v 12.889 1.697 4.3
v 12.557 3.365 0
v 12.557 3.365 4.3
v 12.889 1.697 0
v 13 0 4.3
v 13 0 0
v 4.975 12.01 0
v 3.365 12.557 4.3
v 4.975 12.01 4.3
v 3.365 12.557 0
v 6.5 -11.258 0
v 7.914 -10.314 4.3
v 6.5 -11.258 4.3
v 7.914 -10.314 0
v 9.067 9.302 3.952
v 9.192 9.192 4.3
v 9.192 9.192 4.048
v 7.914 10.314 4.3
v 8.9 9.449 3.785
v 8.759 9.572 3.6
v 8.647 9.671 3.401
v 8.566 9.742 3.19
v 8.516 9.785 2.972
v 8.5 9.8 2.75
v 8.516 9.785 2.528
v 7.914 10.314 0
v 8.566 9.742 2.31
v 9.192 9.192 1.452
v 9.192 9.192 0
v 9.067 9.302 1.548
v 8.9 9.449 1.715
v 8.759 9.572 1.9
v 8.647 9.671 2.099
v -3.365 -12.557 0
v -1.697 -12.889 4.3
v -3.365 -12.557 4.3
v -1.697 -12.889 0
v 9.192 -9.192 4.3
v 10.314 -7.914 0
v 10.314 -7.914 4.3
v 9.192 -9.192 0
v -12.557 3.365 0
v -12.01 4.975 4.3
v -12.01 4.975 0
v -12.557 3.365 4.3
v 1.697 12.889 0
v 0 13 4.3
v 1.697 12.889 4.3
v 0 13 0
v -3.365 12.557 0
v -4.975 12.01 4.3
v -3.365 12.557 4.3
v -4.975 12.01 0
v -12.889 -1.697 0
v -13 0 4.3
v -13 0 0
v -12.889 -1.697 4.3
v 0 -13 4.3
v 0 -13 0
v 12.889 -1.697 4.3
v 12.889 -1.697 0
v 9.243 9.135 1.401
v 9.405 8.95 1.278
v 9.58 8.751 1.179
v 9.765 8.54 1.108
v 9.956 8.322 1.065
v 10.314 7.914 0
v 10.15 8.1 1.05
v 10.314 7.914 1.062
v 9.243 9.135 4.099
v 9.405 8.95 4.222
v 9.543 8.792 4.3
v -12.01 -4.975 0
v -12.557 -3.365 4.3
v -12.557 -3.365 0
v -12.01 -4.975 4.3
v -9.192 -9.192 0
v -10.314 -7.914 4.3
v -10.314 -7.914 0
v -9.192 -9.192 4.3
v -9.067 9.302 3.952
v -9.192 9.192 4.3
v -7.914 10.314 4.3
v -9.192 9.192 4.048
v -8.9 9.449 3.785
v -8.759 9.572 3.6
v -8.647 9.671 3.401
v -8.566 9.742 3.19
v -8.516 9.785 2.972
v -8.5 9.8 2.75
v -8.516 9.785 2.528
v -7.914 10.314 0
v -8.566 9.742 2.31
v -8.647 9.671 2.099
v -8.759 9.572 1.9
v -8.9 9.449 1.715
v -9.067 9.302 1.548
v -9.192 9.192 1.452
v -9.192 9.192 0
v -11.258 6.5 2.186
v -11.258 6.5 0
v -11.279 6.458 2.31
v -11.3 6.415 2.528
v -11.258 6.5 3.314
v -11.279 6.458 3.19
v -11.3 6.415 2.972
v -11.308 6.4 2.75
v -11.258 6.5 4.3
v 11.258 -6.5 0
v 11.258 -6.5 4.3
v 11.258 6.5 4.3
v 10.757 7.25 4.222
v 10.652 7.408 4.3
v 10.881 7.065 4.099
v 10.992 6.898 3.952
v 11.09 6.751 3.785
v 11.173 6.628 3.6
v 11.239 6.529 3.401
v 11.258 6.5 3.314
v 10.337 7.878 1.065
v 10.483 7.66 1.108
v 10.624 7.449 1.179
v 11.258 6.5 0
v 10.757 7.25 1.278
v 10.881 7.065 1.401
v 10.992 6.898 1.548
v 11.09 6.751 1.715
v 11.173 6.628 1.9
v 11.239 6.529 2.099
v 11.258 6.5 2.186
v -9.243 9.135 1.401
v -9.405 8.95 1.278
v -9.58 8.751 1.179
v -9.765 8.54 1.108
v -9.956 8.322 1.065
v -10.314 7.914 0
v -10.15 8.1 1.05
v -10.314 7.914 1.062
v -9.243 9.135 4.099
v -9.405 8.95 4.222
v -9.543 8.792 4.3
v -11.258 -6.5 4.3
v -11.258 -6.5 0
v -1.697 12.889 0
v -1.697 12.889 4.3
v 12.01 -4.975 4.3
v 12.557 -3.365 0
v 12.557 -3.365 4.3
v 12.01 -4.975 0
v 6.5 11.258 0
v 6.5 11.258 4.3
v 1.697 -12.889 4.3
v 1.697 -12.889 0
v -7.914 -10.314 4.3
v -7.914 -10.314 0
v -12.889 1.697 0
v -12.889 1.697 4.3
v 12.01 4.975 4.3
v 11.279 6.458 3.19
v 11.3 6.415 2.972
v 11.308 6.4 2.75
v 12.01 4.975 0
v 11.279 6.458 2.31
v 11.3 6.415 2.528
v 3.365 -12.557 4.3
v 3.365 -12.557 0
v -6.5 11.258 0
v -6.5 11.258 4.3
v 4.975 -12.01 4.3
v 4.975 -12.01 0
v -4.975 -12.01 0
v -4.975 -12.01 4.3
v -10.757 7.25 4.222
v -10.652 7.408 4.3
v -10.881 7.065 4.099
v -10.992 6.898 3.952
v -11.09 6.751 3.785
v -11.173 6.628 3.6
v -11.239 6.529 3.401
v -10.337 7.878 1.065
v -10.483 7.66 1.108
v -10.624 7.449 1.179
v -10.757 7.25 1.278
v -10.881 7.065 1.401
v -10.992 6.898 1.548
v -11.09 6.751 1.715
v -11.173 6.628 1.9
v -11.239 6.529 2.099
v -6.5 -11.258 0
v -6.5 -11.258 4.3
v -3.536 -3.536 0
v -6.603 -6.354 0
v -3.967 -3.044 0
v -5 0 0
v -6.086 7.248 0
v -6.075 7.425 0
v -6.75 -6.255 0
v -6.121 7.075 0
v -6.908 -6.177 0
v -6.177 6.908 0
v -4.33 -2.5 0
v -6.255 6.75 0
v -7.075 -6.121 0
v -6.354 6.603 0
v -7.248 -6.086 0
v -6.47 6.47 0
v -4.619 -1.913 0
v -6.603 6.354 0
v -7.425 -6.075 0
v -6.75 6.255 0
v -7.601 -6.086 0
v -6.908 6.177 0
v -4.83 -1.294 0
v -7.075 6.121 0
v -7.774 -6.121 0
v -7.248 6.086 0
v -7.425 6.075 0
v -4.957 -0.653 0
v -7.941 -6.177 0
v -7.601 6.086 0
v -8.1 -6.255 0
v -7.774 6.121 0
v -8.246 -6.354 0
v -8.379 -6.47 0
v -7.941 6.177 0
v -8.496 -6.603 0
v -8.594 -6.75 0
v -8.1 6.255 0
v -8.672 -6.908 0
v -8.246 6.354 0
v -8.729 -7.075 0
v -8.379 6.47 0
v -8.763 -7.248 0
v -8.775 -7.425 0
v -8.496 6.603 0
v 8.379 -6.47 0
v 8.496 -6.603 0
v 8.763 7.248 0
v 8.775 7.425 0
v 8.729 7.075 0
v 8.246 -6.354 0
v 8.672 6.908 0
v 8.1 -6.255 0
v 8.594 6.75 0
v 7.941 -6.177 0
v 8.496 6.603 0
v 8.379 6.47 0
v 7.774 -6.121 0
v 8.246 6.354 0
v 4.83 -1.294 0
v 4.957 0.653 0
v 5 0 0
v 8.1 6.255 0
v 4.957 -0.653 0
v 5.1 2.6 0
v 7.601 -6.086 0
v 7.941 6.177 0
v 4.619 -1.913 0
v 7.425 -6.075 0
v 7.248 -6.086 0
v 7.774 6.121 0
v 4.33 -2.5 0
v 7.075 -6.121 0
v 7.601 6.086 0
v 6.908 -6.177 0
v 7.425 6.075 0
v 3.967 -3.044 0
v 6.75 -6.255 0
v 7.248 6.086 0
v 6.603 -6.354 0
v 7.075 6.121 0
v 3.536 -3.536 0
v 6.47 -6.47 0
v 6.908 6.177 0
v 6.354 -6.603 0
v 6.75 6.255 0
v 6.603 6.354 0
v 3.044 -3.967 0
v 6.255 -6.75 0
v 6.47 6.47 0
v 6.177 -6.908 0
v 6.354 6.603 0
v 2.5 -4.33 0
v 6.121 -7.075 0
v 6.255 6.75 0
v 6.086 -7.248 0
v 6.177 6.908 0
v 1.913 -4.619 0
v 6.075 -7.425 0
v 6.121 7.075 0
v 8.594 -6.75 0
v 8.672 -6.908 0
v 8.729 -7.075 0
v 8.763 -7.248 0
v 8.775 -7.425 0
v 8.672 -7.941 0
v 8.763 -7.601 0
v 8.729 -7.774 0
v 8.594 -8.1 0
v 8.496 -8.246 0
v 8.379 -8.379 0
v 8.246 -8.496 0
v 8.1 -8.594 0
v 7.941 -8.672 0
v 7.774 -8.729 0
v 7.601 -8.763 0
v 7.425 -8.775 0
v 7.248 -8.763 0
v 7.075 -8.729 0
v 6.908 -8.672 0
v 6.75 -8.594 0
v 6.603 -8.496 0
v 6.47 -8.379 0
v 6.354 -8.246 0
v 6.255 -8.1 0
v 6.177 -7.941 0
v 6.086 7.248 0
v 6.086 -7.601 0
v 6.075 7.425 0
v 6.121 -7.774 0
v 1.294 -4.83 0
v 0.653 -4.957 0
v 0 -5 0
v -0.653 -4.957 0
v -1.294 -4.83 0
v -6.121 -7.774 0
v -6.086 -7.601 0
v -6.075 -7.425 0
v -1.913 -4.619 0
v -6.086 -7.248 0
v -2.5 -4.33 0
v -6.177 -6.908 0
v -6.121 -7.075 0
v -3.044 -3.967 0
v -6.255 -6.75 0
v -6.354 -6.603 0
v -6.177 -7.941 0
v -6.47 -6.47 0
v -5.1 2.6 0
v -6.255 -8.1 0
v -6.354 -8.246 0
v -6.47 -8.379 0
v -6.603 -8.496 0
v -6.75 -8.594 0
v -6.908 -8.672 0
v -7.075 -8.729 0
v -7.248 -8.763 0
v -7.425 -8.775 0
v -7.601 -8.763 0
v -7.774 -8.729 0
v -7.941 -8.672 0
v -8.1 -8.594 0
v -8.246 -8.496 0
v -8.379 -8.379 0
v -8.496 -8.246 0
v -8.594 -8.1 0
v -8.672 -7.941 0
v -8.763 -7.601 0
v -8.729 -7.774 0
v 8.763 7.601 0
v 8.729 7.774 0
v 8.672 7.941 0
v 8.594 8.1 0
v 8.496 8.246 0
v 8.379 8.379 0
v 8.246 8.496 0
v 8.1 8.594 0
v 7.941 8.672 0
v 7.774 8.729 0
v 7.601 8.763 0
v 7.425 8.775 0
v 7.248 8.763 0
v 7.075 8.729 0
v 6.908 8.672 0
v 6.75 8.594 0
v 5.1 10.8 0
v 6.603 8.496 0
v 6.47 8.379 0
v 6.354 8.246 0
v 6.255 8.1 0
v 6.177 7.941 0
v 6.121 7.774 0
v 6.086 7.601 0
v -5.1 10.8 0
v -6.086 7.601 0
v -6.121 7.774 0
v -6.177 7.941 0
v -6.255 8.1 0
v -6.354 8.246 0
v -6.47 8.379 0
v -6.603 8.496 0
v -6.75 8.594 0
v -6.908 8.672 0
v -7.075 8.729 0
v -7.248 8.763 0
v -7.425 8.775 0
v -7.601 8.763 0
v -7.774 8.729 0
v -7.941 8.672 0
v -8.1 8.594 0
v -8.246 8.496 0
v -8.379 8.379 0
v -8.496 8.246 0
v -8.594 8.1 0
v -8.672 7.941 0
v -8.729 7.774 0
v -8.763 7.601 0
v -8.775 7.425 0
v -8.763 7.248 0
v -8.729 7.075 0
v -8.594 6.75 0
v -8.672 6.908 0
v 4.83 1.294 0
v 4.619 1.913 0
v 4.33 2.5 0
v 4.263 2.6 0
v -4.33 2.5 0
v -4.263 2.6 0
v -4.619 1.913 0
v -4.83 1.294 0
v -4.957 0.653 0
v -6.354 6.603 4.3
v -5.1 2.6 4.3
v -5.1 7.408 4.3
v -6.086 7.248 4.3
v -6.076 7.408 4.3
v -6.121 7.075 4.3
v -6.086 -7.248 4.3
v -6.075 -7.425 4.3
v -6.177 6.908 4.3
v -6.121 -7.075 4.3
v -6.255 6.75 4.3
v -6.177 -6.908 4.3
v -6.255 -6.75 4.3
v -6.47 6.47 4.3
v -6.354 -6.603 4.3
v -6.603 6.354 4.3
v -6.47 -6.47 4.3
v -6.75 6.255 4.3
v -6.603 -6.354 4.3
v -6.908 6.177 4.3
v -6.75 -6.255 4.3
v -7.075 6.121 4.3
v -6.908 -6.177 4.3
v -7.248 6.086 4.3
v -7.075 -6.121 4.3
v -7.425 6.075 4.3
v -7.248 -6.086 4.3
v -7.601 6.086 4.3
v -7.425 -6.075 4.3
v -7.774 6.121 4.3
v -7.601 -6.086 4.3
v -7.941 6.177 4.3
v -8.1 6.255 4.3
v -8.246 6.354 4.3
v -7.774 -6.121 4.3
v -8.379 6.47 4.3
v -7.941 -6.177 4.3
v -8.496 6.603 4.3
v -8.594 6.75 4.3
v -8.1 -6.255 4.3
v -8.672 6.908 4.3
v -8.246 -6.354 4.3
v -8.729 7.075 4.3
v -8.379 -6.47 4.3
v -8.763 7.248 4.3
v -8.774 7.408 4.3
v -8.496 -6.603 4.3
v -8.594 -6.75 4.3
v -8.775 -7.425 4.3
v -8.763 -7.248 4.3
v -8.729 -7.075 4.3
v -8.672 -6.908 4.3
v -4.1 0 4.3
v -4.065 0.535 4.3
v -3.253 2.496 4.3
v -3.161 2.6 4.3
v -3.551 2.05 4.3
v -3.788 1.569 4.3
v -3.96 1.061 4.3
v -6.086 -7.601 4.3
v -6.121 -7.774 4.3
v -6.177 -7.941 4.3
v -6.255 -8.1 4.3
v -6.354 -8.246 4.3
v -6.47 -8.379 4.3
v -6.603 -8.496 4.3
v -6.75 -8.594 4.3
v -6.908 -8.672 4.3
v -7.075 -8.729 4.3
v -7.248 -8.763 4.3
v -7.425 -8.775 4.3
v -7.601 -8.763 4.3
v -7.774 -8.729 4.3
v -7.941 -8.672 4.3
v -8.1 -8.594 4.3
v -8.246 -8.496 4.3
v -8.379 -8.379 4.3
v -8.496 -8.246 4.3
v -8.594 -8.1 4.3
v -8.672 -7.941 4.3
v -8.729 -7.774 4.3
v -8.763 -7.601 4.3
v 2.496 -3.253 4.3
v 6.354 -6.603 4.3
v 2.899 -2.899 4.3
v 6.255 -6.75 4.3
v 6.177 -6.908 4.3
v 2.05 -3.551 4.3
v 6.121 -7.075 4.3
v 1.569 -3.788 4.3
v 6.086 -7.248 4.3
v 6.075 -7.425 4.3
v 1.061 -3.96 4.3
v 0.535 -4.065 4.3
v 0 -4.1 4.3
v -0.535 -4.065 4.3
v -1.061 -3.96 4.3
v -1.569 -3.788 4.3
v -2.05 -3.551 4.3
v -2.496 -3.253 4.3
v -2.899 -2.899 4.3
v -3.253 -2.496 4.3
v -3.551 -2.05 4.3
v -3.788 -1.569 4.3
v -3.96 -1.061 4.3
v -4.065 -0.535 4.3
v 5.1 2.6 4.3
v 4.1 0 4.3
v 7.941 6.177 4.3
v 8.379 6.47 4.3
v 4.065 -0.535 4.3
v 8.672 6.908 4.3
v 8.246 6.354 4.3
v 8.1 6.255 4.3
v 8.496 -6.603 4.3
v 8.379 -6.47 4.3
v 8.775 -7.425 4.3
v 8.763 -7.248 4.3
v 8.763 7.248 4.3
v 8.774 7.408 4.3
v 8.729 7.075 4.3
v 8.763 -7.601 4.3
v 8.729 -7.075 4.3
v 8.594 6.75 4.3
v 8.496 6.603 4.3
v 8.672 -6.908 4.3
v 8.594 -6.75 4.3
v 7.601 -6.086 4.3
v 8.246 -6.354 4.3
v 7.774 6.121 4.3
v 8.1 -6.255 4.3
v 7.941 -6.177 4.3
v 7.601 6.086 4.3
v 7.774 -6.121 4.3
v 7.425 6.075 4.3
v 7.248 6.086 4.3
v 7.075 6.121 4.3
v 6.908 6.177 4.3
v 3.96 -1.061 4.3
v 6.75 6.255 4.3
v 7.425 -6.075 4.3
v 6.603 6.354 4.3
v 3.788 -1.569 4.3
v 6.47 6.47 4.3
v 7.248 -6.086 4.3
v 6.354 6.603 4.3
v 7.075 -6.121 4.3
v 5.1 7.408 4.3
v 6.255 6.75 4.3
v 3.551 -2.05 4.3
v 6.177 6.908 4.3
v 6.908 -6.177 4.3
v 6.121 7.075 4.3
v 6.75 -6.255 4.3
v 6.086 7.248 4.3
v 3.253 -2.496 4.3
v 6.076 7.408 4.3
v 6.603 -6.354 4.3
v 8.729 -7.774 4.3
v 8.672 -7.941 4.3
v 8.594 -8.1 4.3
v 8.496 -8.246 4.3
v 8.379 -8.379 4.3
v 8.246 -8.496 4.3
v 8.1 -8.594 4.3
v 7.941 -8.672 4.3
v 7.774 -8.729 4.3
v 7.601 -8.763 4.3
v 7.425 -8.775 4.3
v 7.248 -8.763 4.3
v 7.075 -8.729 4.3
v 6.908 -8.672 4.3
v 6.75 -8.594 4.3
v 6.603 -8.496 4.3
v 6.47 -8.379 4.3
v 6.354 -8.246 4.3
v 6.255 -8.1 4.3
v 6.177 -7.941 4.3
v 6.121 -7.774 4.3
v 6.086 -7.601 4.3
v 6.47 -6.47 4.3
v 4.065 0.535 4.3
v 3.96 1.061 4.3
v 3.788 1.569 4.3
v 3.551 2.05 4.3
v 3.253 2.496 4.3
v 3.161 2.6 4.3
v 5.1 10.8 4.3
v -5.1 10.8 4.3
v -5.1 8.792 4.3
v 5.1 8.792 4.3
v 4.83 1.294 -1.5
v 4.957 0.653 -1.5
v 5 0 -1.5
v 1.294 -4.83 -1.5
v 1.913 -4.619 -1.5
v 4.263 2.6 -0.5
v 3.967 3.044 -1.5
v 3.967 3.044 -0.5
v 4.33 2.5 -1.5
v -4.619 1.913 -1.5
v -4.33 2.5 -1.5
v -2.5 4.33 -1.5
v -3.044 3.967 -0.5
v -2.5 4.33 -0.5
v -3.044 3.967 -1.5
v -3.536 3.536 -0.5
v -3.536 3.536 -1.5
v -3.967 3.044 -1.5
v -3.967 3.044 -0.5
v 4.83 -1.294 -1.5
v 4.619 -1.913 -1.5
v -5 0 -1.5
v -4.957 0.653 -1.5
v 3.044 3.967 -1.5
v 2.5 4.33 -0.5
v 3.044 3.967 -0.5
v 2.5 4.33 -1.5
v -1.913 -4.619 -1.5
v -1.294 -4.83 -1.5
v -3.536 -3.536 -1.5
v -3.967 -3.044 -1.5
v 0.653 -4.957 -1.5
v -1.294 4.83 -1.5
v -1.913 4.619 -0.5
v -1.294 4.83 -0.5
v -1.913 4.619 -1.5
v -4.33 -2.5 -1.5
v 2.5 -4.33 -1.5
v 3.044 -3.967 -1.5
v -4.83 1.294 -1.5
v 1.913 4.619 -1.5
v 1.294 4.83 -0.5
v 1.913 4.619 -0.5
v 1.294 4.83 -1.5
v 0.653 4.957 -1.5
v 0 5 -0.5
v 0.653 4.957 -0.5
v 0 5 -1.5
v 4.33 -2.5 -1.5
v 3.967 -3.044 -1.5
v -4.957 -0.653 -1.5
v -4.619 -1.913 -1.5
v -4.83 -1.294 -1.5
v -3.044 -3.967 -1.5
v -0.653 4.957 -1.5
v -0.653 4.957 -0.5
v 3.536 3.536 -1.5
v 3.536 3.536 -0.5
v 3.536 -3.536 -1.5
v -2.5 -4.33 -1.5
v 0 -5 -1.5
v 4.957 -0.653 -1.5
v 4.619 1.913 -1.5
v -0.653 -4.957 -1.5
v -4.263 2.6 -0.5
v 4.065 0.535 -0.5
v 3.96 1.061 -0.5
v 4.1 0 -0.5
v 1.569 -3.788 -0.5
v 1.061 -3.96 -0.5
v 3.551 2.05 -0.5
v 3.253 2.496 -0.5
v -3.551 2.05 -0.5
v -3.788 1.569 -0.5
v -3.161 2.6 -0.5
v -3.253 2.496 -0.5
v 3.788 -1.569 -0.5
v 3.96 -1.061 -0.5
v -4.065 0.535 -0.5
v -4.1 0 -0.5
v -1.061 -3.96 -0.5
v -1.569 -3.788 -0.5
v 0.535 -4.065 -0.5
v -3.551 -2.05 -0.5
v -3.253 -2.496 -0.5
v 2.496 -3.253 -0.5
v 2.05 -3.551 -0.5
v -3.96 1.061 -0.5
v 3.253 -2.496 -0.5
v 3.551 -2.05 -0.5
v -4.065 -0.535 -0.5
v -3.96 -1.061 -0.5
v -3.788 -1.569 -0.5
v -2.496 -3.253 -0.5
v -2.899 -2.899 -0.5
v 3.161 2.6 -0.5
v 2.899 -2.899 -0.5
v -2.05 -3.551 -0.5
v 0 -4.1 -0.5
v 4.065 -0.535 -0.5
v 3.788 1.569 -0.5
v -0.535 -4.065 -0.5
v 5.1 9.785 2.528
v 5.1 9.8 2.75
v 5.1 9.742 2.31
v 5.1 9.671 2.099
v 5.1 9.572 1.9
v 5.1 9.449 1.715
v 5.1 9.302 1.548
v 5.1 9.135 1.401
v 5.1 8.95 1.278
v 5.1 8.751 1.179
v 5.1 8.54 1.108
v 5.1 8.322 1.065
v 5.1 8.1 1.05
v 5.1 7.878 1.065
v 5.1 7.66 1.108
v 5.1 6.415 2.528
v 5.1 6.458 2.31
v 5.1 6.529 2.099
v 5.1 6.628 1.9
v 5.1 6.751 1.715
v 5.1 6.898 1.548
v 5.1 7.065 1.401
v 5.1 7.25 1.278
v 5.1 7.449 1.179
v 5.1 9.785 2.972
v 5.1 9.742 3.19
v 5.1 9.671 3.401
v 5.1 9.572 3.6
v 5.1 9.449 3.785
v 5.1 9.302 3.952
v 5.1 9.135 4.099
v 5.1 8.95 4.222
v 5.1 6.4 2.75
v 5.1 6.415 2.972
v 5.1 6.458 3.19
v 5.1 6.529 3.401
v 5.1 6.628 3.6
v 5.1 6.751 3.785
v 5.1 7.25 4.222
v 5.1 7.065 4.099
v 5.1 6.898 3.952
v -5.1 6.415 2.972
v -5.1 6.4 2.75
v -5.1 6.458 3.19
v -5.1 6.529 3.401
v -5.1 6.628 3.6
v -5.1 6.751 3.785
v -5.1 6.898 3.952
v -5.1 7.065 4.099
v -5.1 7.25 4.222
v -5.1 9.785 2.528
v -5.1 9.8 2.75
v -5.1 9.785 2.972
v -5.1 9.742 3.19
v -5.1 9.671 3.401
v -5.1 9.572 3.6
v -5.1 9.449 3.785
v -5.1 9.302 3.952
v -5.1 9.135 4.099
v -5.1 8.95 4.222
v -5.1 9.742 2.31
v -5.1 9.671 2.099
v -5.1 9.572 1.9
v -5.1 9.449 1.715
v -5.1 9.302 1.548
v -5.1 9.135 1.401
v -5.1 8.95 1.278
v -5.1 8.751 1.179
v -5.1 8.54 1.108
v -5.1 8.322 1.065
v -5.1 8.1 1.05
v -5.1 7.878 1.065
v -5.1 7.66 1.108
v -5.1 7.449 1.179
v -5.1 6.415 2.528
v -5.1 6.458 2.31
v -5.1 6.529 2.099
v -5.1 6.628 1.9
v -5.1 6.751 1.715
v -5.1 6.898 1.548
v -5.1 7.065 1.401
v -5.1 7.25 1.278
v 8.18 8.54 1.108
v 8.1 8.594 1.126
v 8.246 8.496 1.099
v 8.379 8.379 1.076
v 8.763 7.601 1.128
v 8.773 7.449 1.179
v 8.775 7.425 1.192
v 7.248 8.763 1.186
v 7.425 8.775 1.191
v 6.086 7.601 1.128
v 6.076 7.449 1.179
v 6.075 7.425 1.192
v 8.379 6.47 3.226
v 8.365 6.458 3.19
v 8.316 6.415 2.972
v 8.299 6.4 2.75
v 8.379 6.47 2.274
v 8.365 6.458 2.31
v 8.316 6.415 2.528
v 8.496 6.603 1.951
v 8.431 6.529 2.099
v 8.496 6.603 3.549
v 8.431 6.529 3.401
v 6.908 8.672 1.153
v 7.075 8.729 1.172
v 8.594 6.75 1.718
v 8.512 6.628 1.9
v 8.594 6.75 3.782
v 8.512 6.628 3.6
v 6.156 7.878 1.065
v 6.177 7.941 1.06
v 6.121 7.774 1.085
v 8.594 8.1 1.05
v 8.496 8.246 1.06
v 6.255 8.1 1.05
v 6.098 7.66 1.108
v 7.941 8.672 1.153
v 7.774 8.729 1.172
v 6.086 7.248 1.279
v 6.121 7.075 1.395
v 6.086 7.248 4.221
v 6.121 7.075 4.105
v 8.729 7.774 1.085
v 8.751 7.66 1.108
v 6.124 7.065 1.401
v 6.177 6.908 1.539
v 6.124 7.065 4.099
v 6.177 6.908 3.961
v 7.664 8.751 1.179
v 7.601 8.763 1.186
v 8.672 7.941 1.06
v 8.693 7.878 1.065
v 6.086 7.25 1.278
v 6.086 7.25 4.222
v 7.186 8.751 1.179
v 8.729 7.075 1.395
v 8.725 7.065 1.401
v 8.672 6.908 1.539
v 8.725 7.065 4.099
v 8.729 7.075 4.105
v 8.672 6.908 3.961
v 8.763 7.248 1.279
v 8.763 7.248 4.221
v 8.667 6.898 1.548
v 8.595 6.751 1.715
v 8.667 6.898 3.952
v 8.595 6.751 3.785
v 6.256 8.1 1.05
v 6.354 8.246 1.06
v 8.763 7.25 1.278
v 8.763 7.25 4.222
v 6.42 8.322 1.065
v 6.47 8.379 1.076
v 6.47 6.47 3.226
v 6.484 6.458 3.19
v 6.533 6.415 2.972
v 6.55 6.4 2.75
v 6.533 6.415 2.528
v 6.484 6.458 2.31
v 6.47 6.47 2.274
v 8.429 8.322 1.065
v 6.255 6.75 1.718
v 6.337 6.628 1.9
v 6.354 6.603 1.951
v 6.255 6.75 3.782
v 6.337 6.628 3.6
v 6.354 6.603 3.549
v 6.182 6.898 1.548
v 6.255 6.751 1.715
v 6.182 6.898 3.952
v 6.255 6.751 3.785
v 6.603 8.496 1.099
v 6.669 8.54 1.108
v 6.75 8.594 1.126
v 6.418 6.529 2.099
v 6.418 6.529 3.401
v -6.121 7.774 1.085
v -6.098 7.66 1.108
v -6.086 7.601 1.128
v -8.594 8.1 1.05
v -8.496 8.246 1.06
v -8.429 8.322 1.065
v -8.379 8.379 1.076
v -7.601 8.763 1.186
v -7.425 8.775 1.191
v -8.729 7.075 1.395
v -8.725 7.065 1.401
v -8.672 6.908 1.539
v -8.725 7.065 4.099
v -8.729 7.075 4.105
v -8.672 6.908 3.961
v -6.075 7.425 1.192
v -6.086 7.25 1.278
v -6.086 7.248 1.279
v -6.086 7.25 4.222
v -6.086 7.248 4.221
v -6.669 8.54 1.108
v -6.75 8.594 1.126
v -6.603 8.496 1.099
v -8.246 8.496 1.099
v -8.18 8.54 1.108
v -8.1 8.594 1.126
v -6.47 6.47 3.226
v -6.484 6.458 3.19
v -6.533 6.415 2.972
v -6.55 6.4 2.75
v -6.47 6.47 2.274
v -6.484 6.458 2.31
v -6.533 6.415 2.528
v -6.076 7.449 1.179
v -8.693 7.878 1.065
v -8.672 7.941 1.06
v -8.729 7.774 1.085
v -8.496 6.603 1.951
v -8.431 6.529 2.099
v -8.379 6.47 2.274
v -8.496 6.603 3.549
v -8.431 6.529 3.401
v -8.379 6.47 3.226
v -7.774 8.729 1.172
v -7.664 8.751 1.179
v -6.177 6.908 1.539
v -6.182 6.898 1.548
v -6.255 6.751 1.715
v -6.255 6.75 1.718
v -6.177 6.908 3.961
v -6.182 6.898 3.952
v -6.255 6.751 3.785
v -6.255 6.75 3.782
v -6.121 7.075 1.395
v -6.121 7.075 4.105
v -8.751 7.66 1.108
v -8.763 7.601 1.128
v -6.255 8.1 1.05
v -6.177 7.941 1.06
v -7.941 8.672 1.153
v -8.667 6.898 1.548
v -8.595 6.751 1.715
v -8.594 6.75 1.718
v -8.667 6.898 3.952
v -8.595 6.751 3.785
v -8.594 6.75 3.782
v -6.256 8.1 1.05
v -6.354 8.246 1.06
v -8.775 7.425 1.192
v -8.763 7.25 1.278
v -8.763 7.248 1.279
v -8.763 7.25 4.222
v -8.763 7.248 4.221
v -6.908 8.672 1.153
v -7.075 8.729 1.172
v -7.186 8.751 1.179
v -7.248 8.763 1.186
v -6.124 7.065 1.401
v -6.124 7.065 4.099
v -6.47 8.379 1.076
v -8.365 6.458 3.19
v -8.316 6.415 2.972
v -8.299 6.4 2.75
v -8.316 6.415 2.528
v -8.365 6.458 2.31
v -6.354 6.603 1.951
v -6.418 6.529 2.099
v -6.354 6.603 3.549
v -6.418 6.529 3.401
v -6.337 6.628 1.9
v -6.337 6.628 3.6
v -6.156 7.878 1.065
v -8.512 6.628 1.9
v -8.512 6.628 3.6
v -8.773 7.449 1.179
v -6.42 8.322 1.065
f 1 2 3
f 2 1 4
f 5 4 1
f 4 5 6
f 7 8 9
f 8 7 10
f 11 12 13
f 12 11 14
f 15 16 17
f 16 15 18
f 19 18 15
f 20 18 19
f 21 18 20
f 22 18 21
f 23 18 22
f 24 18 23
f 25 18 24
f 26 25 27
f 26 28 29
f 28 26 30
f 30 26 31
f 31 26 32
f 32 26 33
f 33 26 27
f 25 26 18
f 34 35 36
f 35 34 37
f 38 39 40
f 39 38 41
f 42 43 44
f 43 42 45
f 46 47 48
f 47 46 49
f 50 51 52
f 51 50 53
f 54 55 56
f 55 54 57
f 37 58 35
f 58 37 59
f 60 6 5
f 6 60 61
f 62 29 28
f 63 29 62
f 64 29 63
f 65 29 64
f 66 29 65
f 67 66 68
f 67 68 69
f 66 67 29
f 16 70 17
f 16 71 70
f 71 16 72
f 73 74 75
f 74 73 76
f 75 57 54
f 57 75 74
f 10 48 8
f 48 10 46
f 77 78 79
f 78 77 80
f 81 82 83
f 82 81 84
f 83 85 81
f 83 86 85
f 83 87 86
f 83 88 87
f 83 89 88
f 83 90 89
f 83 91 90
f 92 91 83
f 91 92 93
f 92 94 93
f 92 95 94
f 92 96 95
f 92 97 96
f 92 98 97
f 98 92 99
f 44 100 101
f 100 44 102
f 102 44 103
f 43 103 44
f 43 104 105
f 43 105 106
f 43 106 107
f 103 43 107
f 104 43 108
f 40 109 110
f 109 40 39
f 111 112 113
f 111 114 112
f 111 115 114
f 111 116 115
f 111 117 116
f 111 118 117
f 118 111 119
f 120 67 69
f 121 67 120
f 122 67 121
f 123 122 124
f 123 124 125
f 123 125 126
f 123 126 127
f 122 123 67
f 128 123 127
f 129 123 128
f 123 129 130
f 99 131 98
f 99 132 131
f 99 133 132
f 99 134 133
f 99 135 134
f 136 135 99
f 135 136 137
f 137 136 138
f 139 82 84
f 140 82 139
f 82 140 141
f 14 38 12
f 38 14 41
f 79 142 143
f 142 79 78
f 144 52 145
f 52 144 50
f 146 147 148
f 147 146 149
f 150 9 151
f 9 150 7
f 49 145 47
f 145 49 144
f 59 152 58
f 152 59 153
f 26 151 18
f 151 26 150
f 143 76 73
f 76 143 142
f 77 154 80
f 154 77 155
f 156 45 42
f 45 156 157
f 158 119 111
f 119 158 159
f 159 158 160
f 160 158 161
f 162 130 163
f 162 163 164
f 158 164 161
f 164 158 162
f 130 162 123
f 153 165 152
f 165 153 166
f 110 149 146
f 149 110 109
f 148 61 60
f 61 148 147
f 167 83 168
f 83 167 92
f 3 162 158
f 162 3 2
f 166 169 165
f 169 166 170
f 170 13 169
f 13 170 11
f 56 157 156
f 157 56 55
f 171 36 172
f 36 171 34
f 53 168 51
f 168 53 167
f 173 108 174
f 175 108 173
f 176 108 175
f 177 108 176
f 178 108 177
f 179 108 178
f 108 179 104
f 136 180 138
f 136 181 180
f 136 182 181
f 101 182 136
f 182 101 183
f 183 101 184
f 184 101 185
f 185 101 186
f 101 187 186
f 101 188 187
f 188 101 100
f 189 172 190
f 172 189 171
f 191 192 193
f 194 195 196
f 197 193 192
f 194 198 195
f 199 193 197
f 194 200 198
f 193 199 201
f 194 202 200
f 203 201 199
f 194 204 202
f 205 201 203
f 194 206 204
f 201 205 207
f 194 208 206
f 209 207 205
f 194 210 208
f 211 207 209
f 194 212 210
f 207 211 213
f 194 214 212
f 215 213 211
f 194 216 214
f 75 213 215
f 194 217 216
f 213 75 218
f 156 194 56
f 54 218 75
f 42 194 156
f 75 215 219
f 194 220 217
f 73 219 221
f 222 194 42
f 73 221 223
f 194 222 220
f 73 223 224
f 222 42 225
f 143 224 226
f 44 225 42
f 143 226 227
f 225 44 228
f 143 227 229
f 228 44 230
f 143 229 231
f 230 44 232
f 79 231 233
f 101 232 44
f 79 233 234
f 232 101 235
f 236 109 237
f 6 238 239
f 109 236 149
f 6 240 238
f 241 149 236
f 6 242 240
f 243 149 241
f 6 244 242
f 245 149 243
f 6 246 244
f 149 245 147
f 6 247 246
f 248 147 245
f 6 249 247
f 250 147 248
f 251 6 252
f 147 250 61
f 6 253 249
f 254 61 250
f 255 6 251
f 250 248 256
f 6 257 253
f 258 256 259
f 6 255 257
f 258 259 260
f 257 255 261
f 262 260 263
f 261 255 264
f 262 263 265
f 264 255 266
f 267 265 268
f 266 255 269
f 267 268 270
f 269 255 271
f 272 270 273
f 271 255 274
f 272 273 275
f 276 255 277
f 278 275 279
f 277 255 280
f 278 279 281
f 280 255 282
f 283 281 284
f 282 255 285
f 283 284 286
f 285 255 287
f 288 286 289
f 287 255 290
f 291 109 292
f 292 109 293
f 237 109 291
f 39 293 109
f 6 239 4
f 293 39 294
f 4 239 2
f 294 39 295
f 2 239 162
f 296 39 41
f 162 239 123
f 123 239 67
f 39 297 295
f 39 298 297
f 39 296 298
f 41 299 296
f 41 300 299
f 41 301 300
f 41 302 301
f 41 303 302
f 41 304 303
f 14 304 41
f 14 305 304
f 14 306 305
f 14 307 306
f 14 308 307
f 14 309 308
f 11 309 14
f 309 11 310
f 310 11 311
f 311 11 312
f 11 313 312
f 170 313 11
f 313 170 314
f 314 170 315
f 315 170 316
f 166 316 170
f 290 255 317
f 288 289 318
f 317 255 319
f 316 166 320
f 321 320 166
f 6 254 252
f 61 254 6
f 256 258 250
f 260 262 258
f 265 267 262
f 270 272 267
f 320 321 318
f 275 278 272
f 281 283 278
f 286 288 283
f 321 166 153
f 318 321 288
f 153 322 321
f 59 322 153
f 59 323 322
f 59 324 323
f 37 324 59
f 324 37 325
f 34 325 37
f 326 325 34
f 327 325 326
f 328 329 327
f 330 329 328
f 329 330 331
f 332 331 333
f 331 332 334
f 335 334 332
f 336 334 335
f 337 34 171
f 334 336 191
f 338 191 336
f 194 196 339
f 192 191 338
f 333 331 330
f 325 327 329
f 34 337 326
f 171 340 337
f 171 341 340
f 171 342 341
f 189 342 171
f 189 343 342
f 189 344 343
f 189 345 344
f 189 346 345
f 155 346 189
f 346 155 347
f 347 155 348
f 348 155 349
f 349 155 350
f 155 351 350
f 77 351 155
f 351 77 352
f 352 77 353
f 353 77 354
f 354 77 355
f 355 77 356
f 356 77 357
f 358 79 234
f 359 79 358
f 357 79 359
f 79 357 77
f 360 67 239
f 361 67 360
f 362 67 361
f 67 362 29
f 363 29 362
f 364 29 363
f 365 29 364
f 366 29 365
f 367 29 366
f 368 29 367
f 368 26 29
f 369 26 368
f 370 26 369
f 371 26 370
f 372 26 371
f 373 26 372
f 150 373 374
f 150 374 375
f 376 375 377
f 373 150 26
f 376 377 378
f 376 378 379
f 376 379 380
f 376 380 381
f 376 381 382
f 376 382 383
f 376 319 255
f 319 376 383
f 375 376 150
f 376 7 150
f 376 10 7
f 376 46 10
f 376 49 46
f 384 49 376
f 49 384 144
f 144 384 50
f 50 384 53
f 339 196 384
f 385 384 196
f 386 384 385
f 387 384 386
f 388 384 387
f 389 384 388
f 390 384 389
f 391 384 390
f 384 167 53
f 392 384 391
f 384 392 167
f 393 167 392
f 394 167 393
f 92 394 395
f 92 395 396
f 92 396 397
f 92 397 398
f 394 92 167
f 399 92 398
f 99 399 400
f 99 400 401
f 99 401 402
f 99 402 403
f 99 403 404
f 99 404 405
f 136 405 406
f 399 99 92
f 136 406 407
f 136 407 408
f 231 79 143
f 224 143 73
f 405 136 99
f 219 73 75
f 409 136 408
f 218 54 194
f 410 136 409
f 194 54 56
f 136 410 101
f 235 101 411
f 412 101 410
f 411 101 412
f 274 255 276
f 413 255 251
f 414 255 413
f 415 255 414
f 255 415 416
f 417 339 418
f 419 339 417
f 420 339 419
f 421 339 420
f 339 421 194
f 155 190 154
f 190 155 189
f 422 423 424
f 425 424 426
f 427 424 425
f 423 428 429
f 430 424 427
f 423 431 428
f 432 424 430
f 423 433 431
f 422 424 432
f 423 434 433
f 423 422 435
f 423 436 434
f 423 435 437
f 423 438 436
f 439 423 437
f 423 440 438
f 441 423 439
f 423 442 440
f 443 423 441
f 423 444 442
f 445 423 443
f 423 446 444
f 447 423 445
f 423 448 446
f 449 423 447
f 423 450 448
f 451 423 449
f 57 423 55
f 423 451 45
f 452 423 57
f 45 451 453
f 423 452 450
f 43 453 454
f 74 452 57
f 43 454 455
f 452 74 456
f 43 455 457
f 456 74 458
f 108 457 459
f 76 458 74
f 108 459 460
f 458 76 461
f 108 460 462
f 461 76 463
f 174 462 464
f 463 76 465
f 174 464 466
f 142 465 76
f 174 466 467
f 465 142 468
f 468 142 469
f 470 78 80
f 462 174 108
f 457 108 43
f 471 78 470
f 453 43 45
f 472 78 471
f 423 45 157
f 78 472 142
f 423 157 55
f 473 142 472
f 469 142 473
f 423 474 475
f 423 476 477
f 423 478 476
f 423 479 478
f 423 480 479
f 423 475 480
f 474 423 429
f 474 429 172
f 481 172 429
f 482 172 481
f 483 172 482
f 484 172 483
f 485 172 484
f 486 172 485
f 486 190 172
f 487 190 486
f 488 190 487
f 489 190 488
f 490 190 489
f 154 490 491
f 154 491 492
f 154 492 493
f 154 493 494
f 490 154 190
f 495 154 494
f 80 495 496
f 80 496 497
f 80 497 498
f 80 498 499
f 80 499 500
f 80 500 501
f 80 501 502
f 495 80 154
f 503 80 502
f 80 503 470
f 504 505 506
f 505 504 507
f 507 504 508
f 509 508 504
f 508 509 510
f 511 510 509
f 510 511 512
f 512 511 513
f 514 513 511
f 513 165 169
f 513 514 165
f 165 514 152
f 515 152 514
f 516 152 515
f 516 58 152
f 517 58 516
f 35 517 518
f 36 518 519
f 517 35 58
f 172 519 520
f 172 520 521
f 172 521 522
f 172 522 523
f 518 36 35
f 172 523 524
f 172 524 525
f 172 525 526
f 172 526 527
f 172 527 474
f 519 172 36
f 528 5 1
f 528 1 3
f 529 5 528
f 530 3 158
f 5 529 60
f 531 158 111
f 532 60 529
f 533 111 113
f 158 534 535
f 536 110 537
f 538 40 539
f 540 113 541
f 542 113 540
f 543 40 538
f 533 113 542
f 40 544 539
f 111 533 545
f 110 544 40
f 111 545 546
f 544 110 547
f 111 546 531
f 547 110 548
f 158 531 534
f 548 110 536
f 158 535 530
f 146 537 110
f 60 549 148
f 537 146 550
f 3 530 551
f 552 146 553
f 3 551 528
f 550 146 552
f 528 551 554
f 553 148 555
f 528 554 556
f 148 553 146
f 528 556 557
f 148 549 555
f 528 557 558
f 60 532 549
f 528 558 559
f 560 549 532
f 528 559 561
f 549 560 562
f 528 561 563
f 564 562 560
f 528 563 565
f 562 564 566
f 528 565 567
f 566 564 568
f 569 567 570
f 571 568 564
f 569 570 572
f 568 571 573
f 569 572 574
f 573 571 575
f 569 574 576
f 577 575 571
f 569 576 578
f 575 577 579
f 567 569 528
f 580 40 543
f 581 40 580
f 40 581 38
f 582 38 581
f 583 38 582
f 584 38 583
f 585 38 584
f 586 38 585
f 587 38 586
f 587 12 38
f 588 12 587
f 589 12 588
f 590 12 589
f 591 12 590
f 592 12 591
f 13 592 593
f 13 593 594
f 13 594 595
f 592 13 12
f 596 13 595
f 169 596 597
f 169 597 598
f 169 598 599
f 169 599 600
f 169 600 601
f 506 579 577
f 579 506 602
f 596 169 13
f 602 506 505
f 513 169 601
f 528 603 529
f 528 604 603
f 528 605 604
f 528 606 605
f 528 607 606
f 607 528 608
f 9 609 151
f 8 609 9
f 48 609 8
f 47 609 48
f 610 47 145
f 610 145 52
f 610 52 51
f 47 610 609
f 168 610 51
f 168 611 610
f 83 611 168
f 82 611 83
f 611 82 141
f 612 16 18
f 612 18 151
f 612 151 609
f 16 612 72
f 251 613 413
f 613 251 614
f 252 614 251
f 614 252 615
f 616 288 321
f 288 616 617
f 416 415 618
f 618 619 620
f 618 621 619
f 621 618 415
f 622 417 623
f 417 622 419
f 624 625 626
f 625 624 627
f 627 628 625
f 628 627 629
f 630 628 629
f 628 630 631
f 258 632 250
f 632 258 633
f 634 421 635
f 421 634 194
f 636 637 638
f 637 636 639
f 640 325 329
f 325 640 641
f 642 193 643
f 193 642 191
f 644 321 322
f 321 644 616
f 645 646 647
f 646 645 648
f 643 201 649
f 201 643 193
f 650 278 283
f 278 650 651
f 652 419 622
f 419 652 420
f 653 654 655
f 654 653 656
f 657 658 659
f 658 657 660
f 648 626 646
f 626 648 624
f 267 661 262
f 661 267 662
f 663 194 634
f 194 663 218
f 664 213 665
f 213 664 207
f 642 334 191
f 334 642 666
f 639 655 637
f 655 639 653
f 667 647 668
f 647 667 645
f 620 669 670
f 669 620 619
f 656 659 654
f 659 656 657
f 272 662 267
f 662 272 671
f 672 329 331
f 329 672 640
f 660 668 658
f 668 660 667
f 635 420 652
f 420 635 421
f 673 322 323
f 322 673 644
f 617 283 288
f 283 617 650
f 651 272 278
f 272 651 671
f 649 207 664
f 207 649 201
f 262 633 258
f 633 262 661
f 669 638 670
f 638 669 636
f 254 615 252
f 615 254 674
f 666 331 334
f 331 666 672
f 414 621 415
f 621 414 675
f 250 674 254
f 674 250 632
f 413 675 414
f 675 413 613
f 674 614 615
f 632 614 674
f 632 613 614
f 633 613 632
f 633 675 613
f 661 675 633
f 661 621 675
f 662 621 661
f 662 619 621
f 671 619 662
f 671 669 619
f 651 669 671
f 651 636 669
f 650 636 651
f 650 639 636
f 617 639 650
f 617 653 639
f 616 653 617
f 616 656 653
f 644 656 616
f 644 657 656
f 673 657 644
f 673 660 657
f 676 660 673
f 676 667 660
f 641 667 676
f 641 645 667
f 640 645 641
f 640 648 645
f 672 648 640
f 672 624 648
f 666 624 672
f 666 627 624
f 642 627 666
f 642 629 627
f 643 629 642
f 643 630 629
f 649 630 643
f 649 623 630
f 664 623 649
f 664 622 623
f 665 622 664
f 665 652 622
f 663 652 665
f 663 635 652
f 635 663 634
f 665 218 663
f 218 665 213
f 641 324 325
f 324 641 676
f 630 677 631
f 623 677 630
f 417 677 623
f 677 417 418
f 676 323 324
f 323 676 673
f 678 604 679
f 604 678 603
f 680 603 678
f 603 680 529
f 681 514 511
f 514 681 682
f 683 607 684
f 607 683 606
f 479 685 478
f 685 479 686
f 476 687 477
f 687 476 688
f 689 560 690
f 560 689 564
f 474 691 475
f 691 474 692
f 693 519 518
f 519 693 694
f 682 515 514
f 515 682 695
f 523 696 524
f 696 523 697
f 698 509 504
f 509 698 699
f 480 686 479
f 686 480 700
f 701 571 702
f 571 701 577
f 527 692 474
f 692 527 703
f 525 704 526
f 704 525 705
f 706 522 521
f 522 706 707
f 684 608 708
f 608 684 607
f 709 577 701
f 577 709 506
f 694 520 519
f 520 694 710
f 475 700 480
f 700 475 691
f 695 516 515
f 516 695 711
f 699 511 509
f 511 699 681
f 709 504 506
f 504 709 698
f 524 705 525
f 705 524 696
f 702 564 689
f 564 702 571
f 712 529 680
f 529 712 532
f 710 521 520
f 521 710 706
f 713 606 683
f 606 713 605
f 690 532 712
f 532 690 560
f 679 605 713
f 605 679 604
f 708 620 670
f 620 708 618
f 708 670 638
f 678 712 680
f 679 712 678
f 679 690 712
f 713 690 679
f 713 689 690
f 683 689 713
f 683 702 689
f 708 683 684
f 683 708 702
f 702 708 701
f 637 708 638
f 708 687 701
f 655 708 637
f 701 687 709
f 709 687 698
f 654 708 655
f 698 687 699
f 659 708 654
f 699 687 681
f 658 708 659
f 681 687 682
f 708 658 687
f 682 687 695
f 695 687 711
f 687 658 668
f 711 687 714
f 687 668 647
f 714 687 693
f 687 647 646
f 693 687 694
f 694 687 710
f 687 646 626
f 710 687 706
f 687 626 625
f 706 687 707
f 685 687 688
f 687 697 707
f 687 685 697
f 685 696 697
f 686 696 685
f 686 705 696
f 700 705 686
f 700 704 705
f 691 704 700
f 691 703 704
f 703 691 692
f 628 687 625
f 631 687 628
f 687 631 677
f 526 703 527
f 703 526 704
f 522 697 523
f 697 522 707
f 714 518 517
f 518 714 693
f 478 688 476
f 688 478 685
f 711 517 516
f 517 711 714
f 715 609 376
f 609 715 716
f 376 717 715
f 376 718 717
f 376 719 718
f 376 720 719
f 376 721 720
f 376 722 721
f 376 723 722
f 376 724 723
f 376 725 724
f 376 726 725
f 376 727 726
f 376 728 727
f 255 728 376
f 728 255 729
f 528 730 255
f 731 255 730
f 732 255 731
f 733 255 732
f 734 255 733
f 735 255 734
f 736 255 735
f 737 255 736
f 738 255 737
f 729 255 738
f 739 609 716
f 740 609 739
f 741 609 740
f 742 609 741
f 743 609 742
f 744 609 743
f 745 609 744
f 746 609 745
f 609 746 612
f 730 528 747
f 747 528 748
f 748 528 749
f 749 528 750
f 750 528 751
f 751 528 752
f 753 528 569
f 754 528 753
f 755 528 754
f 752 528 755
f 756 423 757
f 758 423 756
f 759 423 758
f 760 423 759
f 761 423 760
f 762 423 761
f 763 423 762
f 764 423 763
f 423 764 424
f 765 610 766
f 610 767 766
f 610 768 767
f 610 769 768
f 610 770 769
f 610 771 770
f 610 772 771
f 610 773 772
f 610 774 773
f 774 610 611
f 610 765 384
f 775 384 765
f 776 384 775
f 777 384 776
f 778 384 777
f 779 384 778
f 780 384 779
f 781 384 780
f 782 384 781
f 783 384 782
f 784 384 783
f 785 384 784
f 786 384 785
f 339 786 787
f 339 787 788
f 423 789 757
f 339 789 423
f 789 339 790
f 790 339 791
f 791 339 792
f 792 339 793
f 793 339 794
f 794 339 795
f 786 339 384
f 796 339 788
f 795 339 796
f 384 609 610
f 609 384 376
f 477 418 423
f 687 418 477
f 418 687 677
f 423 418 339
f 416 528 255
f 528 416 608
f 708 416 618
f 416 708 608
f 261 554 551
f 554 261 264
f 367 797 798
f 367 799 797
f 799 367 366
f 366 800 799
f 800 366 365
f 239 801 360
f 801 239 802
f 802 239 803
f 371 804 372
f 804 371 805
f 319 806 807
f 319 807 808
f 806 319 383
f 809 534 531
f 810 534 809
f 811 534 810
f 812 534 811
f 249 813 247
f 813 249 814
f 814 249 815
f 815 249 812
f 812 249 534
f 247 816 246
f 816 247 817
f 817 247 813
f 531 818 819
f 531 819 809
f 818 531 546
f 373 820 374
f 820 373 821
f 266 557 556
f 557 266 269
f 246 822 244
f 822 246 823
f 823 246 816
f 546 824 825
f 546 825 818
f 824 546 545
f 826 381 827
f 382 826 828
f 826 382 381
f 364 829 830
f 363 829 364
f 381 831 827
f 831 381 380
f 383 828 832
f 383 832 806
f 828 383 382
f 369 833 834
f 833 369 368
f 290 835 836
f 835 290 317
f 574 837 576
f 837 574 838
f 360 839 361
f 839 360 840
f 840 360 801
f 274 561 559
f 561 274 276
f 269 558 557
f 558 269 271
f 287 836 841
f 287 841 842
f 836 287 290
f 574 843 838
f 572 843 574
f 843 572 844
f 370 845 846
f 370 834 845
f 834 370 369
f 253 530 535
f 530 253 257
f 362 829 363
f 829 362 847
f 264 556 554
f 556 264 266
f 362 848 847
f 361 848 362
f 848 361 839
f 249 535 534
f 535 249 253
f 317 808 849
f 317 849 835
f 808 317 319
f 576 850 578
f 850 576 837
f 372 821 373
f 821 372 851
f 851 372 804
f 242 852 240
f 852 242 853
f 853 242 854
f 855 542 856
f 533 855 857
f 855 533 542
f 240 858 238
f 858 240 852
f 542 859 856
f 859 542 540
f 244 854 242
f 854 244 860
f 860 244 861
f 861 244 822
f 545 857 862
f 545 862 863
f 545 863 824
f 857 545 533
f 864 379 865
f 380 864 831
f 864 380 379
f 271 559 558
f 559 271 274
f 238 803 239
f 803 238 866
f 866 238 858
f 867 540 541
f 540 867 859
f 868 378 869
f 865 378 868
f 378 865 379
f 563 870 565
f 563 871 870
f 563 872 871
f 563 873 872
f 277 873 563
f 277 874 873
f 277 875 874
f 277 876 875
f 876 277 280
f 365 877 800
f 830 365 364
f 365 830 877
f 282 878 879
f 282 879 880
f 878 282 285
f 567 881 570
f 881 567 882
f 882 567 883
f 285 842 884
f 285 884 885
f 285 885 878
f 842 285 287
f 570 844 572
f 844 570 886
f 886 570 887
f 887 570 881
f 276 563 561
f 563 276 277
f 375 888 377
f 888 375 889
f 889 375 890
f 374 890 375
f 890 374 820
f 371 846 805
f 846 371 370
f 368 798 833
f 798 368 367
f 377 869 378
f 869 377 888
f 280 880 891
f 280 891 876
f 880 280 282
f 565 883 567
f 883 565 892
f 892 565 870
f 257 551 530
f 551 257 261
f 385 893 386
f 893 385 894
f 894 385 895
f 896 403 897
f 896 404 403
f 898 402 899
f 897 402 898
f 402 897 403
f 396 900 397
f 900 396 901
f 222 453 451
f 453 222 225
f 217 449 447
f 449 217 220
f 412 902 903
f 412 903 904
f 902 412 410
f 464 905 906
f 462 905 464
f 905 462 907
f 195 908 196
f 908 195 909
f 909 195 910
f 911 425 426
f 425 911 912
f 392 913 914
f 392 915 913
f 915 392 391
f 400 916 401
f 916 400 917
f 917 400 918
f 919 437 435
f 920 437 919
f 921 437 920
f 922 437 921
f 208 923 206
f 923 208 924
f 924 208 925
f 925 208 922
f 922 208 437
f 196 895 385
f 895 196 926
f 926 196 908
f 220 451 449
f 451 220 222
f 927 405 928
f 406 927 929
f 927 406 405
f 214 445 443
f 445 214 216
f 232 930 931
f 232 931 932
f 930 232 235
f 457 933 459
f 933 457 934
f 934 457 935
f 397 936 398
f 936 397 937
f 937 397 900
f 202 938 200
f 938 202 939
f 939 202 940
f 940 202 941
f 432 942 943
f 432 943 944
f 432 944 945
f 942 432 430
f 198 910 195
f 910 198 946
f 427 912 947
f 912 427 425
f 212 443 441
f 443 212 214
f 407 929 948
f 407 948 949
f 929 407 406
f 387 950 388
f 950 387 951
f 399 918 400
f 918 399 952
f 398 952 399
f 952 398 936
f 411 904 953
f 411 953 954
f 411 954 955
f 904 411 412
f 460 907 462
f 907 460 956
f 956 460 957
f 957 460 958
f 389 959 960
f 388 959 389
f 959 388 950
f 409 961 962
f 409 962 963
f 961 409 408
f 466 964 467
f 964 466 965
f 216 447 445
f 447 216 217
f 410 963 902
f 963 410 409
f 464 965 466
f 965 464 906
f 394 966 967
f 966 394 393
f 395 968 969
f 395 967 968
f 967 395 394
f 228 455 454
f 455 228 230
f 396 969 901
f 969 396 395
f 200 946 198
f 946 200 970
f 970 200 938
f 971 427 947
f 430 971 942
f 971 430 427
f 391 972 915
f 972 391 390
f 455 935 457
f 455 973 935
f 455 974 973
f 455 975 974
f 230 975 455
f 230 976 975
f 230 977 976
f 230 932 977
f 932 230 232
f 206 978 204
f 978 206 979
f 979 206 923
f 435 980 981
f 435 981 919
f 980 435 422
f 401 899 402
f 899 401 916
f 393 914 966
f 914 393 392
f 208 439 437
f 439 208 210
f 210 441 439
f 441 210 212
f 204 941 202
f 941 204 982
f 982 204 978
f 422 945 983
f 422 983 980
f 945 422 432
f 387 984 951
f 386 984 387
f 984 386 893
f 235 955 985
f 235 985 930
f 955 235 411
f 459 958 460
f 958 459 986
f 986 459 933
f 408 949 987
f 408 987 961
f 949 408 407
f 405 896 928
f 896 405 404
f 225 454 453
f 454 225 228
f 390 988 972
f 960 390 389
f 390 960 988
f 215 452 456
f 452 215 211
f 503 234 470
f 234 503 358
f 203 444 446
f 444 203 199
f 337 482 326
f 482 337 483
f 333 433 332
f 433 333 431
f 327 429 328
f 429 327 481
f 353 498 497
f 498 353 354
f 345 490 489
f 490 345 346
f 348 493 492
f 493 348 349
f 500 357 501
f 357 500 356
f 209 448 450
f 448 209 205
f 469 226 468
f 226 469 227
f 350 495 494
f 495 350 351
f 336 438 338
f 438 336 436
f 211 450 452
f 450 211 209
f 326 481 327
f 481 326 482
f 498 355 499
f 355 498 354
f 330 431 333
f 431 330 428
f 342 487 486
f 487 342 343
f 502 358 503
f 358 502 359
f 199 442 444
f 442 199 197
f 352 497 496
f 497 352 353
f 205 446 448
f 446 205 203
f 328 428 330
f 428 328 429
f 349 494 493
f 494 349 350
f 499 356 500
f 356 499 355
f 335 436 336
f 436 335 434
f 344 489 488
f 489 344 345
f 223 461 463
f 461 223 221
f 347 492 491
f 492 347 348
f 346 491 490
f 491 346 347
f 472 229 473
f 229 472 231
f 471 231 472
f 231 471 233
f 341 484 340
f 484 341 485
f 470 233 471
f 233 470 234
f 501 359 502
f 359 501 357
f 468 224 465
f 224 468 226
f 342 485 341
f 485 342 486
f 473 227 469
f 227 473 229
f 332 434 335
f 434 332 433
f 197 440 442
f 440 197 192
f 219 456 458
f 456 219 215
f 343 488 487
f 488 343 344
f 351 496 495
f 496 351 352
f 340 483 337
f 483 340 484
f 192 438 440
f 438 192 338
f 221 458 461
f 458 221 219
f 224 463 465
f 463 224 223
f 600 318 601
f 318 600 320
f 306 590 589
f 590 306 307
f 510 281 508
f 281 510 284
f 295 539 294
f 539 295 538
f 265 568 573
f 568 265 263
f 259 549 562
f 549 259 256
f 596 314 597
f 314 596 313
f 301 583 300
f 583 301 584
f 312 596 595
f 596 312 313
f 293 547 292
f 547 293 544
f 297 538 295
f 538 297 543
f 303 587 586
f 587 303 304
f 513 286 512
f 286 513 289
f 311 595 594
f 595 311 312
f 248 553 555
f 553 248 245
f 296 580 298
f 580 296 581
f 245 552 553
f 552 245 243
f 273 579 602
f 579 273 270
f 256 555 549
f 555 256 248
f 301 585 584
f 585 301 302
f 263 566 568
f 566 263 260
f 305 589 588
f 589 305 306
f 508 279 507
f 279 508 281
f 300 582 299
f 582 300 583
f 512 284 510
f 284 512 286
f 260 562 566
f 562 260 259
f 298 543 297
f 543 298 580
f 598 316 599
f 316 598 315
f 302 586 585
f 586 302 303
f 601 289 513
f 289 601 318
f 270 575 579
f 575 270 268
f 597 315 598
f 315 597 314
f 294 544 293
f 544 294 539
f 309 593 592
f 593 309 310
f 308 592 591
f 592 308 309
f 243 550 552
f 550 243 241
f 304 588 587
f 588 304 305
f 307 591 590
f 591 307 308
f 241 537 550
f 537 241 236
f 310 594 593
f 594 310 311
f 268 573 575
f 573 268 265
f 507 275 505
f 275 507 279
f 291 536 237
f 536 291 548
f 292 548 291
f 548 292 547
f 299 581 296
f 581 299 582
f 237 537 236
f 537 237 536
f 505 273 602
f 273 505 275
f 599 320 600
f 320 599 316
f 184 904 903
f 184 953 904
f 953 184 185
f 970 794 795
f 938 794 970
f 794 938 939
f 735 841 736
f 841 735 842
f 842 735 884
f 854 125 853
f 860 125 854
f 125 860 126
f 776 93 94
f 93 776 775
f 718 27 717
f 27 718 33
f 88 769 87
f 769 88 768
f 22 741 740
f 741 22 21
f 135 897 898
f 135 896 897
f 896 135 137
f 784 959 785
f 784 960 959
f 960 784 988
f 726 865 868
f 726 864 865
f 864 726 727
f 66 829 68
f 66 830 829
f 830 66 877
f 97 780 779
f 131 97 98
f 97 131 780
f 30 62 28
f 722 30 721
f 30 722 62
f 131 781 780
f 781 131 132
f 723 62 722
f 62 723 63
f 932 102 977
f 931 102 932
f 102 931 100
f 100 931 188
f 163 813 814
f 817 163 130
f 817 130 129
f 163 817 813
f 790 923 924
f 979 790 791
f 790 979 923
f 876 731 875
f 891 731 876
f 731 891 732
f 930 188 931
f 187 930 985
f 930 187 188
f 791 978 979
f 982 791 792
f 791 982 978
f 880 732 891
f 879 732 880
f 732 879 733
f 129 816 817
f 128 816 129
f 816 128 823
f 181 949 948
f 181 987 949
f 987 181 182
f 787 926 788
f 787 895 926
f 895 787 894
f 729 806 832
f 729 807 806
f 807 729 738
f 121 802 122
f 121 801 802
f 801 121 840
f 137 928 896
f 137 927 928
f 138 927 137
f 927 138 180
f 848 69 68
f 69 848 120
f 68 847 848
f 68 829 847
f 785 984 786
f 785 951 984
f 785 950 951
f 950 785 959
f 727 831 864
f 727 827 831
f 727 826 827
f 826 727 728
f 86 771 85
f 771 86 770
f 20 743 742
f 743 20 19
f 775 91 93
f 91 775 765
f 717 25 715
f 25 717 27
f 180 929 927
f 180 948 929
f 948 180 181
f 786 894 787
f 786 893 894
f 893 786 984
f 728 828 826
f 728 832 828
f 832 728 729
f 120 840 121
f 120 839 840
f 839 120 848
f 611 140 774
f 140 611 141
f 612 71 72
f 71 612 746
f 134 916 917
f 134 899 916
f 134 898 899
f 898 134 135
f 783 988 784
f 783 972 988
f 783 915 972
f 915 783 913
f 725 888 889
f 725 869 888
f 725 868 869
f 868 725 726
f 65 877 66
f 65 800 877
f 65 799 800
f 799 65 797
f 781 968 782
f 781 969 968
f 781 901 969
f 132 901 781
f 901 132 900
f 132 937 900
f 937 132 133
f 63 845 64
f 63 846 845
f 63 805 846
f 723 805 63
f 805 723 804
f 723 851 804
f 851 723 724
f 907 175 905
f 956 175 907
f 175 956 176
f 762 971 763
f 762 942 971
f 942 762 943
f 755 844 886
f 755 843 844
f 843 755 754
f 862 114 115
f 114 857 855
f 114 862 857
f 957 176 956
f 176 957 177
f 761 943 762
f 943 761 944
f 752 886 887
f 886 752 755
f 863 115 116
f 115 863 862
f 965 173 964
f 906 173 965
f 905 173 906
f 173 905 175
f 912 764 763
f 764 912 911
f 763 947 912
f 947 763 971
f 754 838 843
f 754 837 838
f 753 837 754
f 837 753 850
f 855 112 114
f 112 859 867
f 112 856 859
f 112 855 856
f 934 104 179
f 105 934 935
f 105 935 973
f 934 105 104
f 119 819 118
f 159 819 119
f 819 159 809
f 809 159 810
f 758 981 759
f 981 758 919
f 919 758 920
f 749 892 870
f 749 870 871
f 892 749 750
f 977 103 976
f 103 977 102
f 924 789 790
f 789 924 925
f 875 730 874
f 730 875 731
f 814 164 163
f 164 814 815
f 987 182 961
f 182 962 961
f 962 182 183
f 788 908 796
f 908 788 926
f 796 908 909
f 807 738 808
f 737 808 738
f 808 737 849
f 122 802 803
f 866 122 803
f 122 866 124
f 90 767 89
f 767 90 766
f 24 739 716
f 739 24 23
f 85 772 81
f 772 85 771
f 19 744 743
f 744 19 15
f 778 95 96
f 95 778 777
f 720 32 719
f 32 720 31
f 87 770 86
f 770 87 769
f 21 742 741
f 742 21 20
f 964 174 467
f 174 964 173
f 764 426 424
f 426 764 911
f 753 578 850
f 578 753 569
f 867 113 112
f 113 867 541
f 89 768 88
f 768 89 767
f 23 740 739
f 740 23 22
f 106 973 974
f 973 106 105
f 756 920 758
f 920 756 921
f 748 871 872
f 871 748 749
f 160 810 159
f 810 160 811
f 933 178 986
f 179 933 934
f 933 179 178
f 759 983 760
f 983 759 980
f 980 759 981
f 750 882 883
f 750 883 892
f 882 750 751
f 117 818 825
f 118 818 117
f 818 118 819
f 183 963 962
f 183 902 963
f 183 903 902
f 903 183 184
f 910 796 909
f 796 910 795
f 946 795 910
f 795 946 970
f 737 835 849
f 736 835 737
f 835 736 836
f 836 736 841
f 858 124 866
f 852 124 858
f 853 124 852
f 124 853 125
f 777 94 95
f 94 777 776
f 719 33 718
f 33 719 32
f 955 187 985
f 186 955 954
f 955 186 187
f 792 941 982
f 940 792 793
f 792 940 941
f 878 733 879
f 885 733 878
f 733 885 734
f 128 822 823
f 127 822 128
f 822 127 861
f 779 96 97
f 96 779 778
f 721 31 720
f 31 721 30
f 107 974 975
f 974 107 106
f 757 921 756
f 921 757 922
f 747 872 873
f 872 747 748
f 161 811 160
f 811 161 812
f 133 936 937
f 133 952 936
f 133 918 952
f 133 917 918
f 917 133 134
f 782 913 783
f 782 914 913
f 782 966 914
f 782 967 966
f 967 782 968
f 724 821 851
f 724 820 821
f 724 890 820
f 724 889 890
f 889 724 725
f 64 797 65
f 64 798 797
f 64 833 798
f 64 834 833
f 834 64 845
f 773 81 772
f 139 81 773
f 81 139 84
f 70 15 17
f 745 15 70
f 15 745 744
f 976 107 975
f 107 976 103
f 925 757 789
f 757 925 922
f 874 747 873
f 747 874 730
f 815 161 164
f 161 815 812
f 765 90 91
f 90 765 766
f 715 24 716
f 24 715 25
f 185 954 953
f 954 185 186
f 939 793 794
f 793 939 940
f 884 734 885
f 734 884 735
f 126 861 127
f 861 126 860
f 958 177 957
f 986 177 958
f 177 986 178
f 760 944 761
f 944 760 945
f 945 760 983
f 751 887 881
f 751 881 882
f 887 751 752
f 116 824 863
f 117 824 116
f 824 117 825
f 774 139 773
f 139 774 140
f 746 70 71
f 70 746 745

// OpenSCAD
// Pi Flux - hand crank generator: clamp hub for the rotor discs
// Two of these per rotor shaft: one above and one below each disc, pulling the disc
// between them. Print with the boss up; no supports.
include <crank_common.scad>

module cr_hub(boss=true) {
    difference() {
        union() {
            cylinder(d = CR_HUB_D, h = CR_SPACER_H);                       // body
            if (boss) translate([0, 0, -CR_HUB_BOSS_H])
                cylinder(d = CR_HUB_BOSS_D, h = CR_HUB_BOSS_H + 0.1);      // rides the 608
        }
        cr_dbore(h = CR_SPACER_H + 3);
        // pinch-clamp slit across the shaft flat
        translate([-1.2, CR_FLAT, -0.5]) cube([2.4, CR_BORE_D, CR_SPACER_H + 2]);
        // clamp screw (M3) across the slit
        translate([-CR_HUB_D/2 - 1, CR_FLAT + 5.5, CR_SPACER_H/2 + 0.6]) rotate([0, 90, 0])
            cylinder(d = 3.4, h = CR_HUB_D + 2);
        for (i = [0:3]) rotate([0, 0, 45 + i*90])
            translate([CR_HUB_SCREW_R, 0, -1]) cylinder(d = 2.7, h = CR_SPACER_H + 3);  // M3 self-tap, 4.3 mm deep
    }
}

if (is_undef(ASSEMBLY)) cr_hub();
